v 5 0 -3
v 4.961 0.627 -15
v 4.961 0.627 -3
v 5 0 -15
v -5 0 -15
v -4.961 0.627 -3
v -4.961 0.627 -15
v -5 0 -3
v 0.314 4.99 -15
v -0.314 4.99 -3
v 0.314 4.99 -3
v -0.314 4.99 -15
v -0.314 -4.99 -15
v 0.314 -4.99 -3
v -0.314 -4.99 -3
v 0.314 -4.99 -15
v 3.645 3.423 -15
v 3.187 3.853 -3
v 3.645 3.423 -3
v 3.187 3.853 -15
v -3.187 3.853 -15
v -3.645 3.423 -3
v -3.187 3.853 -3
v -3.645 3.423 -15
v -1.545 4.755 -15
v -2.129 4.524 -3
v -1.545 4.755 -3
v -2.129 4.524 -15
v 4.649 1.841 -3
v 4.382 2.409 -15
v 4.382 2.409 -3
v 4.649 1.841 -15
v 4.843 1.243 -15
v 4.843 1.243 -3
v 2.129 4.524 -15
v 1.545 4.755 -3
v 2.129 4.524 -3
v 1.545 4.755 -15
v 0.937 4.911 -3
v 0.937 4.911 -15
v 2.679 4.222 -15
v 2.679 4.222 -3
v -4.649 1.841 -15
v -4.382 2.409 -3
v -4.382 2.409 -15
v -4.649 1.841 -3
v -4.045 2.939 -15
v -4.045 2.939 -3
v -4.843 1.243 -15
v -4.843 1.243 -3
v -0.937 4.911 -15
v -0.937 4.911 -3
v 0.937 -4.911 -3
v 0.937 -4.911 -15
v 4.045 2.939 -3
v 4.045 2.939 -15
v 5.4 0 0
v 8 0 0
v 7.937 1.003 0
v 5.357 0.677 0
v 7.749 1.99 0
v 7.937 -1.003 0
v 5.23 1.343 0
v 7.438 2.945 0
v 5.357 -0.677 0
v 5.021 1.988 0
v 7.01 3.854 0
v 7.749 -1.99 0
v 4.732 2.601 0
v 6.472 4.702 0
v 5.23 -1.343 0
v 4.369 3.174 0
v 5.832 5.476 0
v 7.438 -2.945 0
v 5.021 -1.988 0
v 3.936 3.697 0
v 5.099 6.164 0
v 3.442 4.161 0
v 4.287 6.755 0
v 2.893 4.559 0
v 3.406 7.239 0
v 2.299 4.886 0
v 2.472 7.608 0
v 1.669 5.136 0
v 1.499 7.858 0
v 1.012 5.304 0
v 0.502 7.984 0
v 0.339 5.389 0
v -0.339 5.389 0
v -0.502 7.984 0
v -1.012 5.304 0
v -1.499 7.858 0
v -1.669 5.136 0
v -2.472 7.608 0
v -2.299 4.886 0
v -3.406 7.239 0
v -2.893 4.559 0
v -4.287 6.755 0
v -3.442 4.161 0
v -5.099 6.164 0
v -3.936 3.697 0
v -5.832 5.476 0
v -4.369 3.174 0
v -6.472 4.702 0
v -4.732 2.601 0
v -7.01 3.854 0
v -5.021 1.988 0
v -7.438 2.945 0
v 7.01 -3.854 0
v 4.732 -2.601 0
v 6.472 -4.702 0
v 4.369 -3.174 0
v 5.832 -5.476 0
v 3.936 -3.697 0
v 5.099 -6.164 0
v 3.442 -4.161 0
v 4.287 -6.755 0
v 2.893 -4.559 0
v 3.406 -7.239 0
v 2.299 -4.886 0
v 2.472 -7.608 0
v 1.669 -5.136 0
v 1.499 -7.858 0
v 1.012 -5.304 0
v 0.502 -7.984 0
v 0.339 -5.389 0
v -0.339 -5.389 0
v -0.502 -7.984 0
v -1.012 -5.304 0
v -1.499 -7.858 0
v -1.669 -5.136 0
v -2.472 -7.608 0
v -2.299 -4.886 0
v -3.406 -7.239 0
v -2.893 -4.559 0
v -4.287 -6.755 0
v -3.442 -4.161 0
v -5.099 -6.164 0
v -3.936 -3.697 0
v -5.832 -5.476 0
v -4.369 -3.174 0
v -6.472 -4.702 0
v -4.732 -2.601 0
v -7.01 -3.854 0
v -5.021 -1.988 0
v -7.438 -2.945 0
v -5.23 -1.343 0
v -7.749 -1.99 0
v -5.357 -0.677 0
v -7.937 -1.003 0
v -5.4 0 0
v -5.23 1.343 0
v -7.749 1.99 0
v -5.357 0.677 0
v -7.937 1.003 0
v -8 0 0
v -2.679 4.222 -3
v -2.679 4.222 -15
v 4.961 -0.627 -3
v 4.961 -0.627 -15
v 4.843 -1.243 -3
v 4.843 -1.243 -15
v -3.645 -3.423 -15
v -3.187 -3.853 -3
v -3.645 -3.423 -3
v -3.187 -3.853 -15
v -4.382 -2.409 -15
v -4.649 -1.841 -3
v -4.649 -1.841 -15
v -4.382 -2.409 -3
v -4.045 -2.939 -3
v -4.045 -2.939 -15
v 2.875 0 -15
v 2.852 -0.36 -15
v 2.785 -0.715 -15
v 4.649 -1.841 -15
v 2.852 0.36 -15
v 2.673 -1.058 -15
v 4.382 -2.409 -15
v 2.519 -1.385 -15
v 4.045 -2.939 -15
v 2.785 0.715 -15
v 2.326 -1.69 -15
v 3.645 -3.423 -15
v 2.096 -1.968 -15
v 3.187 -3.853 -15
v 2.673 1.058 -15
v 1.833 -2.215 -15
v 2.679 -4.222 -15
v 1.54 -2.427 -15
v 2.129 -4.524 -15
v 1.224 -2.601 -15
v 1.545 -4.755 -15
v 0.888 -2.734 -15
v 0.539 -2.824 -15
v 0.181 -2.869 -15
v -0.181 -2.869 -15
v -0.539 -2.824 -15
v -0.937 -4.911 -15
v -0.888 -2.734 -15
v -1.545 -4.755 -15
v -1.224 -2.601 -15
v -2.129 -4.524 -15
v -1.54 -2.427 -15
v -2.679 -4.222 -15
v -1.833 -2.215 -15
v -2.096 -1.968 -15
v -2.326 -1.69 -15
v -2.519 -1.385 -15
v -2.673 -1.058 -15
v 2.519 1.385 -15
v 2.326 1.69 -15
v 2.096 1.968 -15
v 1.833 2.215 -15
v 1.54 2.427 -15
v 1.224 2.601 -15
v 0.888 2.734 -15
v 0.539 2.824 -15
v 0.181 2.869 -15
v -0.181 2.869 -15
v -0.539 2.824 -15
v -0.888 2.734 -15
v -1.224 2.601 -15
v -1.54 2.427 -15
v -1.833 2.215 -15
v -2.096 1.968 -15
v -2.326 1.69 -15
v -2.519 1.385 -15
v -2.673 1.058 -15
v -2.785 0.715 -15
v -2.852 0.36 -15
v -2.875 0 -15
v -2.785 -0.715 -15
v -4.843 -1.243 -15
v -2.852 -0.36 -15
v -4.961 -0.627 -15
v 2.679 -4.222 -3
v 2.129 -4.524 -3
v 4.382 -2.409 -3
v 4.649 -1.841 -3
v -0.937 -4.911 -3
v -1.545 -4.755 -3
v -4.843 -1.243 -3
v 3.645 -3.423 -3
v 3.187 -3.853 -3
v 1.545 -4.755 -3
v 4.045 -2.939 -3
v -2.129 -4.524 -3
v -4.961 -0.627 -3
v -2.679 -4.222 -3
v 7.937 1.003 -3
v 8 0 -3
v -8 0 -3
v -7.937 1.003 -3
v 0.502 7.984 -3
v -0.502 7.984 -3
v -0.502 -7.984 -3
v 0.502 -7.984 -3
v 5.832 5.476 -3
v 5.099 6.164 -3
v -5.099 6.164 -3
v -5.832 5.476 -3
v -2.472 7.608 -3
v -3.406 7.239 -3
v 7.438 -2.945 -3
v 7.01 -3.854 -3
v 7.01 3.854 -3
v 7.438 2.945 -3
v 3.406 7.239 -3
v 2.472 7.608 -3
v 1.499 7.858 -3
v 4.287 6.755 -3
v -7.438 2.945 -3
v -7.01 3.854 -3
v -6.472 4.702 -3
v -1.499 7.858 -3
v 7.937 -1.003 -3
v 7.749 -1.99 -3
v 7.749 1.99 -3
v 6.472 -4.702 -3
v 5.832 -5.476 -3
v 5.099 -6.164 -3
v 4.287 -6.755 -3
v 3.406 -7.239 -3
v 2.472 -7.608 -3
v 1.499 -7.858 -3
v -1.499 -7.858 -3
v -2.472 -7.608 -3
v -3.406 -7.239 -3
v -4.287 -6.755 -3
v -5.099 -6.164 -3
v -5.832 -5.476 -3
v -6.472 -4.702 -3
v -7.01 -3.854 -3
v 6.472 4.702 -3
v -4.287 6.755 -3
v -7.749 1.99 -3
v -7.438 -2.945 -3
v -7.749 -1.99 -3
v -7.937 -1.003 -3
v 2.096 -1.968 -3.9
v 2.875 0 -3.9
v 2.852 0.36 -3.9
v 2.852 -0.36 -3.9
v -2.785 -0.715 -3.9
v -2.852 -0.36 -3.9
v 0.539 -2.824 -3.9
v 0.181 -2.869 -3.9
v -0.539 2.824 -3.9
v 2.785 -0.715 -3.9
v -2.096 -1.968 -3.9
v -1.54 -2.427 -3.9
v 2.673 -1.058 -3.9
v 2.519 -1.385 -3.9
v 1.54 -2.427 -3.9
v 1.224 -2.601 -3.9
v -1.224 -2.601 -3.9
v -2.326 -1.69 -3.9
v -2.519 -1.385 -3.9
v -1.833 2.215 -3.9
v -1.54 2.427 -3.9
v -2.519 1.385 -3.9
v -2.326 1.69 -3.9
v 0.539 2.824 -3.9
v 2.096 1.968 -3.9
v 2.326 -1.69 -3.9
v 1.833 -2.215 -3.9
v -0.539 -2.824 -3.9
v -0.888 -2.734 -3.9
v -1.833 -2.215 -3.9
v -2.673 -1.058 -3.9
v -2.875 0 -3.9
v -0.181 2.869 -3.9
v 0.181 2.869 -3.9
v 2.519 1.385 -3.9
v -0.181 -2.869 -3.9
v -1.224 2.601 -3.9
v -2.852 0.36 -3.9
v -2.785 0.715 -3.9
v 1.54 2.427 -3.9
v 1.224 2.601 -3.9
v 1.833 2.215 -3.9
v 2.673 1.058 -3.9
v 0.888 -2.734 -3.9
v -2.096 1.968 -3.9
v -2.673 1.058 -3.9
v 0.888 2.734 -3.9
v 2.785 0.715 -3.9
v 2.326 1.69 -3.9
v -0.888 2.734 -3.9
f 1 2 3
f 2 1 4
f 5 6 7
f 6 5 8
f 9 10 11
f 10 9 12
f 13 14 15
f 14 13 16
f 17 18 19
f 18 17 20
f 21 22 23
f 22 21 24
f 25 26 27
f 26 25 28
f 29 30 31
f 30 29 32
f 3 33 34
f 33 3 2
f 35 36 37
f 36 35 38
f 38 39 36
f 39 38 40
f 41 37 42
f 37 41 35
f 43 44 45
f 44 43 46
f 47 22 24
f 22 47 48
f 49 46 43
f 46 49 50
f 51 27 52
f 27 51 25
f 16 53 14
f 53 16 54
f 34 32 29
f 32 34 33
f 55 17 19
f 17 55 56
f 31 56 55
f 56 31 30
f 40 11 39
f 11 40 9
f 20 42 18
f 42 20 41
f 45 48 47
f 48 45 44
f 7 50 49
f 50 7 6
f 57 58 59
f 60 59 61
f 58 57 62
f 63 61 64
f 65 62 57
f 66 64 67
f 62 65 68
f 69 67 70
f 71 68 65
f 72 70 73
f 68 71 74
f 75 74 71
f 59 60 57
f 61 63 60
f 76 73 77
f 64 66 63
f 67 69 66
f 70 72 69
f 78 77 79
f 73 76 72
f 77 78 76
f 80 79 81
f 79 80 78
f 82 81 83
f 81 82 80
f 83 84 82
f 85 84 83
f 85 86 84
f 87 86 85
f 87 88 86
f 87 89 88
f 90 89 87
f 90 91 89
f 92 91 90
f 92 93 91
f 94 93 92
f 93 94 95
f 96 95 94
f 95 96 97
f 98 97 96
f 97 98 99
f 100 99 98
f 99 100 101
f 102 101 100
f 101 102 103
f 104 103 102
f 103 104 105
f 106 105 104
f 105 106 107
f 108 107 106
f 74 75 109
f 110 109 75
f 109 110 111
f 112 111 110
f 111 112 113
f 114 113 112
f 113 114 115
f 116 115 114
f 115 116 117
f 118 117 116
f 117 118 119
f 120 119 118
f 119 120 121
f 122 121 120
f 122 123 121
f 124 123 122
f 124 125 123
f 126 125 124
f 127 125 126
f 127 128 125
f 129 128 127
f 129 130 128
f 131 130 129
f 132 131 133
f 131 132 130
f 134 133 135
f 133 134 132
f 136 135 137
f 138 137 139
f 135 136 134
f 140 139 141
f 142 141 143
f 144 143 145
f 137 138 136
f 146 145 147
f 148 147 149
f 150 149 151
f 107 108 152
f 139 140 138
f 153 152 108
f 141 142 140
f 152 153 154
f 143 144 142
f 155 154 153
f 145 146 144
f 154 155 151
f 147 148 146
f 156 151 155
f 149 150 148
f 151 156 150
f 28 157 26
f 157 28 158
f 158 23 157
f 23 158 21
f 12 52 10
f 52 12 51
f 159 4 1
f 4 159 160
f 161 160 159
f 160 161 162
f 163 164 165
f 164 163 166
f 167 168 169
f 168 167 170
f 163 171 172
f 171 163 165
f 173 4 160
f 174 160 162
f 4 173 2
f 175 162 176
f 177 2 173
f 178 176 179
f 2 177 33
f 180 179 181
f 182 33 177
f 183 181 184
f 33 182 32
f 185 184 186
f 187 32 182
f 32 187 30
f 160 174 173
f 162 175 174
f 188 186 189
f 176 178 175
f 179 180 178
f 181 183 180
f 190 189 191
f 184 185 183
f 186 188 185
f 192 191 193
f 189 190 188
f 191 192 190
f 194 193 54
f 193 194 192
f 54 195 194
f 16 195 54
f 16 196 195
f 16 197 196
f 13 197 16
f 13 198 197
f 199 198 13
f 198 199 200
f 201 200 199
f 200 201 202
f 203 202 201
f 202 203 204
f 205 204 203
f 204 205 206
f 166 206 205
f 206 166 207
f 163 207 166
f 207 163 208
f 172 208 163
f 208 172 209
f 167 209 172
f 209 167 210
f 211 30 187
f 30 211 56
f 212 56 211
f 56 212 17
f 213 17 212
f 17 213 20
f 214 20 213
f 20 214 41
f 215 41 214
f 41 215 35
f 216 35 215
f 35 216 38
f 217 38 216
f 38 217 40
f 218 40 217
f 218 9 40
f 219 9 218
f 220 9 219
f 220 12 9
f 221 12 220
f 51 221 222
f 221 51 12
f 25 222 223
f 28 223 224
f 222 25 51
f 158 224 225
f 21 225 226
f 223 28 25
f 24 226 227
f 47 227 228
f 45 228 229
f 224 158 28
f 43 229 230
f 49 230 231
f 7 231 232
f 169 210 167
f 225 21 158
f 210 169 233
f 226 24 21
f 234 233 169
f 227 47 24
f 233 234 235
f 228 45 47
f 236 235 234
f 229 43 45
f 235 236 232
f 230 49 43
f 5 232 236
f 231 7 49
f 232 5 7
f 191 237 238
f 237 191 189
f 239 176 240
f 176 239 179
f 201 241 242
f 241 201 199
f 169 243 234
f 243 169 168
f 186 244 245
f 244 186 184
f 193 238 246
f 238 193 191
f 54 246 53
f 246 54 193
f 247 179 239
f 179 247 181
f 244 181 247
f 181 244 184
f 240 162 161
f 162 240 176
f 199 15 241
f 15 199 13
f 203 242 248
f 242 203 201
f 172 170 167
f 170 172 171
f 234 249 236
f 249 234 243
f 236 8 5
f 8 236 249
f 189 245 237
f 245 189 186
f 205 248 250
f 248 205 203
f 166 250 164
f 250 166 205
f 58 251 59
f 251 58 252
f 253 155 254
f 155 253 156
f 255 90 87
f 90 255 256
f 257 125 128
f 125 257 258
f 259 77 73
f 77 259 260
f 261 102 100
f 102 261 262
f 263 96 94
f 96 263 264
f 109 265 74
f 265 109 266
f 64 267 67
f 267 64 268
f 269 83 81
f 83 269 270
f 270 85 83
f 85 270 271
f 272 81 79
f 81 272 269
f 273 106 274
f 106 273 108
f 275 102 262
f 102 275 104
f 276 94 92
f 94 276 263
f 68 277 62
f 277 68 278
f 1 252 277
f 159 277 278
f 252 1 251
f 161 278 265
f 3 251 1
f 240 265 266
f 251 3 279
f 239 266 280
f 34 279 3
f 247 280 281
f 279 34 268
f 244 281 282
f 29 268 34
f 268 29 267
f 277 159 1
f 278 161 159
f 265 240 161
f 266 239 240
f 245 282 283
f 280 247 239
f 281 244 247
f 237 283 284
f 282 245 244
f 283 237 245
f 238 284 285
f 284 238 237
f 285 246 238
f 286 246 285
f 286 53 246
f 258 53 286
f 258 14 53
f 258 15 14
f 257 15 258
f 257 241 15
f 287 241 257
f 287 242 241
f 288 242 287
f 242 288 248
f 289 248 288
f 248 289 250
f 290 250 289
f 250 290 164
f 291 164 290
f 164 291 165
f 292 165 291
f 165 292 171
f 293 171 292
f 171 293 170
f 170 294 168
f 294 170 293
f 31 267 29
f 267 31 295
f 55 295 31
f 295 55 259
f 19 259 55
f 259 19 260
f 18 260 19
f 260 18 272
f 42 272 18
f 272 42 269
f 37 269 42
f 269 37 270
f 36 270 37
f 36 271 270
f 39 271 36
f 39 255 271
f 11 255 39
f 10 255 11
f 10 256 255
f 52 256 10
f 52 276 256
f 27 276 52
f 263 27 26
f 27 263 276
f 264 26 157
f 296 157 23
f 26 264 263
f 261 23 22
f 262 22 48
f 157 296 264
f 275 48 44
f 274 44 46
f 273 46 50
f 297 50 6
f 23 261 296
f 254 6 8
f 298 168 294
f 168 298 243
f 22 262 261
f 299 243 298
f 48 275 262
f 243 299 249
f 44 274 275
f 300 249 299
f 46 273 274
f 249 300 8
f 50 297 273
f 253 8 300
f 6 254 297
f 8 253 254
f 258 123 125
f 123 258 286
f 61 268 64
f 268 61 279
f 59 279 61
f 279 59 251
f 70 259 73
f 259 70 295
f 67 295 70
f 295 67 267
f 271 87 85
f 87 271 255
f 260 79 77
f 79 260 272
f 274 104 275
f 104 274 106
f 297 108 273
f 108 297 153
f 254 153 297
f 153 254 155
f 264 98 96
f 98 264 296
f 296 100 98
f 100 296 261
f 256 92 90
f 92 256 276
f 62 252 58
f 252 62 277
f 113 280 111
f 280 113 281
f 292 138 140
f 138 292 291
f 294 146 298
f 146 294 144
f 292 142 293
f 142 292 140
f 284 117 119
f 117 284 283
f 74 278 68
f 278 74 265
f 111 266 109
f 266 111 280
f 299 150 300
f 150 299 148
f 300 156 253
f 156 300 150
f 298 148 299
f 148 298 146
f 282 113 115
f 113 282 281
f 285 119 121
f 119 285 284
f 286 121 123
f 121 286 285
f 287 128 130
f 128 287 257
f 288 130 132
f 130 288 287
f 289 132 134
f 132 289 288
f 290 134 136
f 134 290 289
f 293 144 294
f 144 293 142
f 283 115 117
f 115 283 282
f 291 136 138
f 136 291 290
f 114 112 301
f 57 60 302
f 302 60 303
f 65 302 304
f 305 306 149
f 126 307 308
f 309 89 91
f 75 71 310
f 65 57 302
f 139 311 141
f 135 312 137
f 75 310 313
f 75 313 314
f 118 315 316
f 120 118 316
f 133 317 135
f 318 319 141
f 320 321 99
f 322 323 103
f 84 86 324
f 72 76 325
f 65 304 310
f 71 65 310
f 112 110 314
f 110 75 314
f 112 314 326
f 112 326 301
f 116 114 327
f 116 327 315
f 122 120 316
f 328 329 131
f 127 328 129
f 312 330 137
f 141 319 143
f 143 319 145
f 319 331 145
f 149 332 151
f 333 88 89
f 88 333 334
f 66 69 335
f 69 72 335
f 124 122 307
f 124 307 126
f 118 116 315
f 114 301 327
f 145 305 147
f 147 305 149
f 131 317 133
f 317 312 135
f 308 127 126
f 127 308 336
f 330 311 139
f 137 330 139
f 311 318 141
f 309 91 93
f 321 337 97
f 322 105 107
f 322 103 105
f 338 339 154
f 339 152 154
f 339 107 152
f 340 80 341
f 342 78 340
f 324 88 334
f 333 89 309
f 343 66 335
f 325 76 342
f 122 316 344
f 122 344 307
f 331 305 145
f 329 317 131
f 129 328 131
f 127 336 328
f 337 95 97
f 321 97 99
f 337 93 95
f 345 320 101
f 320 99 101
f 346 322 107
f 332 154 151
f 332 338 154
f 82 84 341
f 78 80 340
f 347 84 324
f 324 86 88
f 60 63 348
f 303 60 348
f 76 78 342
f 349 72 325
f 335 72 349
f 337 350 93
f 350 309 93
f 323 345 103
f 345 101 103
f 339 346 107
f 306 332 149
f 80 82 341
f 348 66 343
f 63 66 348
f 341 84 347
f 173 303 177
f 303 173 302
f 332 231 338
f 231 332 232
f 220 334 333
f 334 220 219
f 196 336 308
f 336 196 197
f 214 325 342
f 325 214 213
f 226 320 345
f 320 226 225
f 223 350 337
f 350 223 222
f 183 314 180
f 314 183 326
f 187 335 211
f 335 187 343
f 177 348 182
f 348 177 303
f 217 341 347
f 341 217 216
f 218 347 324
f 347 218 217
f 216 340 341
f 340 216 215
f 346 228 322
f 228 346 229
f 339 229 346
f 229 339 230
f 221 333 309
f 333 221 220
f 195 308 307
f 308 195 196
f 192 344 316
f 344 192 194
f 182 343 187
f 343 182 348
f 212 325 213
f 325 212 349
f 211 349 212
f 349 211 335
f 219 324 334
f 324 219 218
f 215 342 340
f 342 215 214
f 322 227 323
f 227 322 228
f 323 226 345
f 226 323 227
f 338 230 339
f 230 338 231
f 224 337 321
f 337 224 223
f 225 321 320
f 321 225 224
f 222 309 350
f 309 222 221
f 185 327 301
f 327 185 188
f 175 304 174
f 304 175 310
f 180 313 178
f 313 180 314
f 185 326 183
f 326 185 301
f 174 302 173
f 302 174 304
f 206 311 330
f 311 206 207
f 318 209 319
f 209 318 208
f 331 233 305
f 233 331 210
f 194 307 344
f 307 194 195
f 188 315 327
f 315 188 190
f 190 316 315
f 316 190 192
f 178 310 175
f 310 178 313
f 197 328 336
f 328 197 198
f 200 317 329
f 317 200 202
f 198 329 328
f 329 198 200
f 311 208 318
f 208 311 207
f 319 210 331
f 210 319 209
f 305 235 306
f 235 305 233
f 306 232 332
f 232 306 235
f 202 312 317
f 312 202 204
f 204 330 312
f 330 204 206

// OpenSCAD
$fn = 50;


difference() {
	union() {
		translate(v = [0, 0, -15.0000000000]) {
			cylinder(h = 15, r = 5.0000000000);
		}
		translate(v = [0, 0, -3.0000000000]) {
			cylinder(h = 3, r = 8.0000000000);
		}
	}
	union() {
		translate(v = [0, 0, 0]) {
			rotate(a = [0, 0, 0]) {
				difference() {
					union() {
						#translate(v = [0, 0, -15.0000000000]) {
							cylinder(h = 15, r = 2.6000000000);
						}
						#translate(v = [0, 0, -3.9000000000]) {
							cylinder(h = 3.9000000000, r = 5.0000000000, r1 = 2.8750000000, r2 = 5.4000000000);
						}
						#translate(v = [0, 0, -15.0000000000]) {
							cylinder(h = 15, r = 2.8750000000);
						}
						#translate(v = [0, 0, -15.0000000000]) {
							cylinder(h = 15, r = 2.6000000000);
						}
					}
					union();
				}
			}
		}
	}
}
